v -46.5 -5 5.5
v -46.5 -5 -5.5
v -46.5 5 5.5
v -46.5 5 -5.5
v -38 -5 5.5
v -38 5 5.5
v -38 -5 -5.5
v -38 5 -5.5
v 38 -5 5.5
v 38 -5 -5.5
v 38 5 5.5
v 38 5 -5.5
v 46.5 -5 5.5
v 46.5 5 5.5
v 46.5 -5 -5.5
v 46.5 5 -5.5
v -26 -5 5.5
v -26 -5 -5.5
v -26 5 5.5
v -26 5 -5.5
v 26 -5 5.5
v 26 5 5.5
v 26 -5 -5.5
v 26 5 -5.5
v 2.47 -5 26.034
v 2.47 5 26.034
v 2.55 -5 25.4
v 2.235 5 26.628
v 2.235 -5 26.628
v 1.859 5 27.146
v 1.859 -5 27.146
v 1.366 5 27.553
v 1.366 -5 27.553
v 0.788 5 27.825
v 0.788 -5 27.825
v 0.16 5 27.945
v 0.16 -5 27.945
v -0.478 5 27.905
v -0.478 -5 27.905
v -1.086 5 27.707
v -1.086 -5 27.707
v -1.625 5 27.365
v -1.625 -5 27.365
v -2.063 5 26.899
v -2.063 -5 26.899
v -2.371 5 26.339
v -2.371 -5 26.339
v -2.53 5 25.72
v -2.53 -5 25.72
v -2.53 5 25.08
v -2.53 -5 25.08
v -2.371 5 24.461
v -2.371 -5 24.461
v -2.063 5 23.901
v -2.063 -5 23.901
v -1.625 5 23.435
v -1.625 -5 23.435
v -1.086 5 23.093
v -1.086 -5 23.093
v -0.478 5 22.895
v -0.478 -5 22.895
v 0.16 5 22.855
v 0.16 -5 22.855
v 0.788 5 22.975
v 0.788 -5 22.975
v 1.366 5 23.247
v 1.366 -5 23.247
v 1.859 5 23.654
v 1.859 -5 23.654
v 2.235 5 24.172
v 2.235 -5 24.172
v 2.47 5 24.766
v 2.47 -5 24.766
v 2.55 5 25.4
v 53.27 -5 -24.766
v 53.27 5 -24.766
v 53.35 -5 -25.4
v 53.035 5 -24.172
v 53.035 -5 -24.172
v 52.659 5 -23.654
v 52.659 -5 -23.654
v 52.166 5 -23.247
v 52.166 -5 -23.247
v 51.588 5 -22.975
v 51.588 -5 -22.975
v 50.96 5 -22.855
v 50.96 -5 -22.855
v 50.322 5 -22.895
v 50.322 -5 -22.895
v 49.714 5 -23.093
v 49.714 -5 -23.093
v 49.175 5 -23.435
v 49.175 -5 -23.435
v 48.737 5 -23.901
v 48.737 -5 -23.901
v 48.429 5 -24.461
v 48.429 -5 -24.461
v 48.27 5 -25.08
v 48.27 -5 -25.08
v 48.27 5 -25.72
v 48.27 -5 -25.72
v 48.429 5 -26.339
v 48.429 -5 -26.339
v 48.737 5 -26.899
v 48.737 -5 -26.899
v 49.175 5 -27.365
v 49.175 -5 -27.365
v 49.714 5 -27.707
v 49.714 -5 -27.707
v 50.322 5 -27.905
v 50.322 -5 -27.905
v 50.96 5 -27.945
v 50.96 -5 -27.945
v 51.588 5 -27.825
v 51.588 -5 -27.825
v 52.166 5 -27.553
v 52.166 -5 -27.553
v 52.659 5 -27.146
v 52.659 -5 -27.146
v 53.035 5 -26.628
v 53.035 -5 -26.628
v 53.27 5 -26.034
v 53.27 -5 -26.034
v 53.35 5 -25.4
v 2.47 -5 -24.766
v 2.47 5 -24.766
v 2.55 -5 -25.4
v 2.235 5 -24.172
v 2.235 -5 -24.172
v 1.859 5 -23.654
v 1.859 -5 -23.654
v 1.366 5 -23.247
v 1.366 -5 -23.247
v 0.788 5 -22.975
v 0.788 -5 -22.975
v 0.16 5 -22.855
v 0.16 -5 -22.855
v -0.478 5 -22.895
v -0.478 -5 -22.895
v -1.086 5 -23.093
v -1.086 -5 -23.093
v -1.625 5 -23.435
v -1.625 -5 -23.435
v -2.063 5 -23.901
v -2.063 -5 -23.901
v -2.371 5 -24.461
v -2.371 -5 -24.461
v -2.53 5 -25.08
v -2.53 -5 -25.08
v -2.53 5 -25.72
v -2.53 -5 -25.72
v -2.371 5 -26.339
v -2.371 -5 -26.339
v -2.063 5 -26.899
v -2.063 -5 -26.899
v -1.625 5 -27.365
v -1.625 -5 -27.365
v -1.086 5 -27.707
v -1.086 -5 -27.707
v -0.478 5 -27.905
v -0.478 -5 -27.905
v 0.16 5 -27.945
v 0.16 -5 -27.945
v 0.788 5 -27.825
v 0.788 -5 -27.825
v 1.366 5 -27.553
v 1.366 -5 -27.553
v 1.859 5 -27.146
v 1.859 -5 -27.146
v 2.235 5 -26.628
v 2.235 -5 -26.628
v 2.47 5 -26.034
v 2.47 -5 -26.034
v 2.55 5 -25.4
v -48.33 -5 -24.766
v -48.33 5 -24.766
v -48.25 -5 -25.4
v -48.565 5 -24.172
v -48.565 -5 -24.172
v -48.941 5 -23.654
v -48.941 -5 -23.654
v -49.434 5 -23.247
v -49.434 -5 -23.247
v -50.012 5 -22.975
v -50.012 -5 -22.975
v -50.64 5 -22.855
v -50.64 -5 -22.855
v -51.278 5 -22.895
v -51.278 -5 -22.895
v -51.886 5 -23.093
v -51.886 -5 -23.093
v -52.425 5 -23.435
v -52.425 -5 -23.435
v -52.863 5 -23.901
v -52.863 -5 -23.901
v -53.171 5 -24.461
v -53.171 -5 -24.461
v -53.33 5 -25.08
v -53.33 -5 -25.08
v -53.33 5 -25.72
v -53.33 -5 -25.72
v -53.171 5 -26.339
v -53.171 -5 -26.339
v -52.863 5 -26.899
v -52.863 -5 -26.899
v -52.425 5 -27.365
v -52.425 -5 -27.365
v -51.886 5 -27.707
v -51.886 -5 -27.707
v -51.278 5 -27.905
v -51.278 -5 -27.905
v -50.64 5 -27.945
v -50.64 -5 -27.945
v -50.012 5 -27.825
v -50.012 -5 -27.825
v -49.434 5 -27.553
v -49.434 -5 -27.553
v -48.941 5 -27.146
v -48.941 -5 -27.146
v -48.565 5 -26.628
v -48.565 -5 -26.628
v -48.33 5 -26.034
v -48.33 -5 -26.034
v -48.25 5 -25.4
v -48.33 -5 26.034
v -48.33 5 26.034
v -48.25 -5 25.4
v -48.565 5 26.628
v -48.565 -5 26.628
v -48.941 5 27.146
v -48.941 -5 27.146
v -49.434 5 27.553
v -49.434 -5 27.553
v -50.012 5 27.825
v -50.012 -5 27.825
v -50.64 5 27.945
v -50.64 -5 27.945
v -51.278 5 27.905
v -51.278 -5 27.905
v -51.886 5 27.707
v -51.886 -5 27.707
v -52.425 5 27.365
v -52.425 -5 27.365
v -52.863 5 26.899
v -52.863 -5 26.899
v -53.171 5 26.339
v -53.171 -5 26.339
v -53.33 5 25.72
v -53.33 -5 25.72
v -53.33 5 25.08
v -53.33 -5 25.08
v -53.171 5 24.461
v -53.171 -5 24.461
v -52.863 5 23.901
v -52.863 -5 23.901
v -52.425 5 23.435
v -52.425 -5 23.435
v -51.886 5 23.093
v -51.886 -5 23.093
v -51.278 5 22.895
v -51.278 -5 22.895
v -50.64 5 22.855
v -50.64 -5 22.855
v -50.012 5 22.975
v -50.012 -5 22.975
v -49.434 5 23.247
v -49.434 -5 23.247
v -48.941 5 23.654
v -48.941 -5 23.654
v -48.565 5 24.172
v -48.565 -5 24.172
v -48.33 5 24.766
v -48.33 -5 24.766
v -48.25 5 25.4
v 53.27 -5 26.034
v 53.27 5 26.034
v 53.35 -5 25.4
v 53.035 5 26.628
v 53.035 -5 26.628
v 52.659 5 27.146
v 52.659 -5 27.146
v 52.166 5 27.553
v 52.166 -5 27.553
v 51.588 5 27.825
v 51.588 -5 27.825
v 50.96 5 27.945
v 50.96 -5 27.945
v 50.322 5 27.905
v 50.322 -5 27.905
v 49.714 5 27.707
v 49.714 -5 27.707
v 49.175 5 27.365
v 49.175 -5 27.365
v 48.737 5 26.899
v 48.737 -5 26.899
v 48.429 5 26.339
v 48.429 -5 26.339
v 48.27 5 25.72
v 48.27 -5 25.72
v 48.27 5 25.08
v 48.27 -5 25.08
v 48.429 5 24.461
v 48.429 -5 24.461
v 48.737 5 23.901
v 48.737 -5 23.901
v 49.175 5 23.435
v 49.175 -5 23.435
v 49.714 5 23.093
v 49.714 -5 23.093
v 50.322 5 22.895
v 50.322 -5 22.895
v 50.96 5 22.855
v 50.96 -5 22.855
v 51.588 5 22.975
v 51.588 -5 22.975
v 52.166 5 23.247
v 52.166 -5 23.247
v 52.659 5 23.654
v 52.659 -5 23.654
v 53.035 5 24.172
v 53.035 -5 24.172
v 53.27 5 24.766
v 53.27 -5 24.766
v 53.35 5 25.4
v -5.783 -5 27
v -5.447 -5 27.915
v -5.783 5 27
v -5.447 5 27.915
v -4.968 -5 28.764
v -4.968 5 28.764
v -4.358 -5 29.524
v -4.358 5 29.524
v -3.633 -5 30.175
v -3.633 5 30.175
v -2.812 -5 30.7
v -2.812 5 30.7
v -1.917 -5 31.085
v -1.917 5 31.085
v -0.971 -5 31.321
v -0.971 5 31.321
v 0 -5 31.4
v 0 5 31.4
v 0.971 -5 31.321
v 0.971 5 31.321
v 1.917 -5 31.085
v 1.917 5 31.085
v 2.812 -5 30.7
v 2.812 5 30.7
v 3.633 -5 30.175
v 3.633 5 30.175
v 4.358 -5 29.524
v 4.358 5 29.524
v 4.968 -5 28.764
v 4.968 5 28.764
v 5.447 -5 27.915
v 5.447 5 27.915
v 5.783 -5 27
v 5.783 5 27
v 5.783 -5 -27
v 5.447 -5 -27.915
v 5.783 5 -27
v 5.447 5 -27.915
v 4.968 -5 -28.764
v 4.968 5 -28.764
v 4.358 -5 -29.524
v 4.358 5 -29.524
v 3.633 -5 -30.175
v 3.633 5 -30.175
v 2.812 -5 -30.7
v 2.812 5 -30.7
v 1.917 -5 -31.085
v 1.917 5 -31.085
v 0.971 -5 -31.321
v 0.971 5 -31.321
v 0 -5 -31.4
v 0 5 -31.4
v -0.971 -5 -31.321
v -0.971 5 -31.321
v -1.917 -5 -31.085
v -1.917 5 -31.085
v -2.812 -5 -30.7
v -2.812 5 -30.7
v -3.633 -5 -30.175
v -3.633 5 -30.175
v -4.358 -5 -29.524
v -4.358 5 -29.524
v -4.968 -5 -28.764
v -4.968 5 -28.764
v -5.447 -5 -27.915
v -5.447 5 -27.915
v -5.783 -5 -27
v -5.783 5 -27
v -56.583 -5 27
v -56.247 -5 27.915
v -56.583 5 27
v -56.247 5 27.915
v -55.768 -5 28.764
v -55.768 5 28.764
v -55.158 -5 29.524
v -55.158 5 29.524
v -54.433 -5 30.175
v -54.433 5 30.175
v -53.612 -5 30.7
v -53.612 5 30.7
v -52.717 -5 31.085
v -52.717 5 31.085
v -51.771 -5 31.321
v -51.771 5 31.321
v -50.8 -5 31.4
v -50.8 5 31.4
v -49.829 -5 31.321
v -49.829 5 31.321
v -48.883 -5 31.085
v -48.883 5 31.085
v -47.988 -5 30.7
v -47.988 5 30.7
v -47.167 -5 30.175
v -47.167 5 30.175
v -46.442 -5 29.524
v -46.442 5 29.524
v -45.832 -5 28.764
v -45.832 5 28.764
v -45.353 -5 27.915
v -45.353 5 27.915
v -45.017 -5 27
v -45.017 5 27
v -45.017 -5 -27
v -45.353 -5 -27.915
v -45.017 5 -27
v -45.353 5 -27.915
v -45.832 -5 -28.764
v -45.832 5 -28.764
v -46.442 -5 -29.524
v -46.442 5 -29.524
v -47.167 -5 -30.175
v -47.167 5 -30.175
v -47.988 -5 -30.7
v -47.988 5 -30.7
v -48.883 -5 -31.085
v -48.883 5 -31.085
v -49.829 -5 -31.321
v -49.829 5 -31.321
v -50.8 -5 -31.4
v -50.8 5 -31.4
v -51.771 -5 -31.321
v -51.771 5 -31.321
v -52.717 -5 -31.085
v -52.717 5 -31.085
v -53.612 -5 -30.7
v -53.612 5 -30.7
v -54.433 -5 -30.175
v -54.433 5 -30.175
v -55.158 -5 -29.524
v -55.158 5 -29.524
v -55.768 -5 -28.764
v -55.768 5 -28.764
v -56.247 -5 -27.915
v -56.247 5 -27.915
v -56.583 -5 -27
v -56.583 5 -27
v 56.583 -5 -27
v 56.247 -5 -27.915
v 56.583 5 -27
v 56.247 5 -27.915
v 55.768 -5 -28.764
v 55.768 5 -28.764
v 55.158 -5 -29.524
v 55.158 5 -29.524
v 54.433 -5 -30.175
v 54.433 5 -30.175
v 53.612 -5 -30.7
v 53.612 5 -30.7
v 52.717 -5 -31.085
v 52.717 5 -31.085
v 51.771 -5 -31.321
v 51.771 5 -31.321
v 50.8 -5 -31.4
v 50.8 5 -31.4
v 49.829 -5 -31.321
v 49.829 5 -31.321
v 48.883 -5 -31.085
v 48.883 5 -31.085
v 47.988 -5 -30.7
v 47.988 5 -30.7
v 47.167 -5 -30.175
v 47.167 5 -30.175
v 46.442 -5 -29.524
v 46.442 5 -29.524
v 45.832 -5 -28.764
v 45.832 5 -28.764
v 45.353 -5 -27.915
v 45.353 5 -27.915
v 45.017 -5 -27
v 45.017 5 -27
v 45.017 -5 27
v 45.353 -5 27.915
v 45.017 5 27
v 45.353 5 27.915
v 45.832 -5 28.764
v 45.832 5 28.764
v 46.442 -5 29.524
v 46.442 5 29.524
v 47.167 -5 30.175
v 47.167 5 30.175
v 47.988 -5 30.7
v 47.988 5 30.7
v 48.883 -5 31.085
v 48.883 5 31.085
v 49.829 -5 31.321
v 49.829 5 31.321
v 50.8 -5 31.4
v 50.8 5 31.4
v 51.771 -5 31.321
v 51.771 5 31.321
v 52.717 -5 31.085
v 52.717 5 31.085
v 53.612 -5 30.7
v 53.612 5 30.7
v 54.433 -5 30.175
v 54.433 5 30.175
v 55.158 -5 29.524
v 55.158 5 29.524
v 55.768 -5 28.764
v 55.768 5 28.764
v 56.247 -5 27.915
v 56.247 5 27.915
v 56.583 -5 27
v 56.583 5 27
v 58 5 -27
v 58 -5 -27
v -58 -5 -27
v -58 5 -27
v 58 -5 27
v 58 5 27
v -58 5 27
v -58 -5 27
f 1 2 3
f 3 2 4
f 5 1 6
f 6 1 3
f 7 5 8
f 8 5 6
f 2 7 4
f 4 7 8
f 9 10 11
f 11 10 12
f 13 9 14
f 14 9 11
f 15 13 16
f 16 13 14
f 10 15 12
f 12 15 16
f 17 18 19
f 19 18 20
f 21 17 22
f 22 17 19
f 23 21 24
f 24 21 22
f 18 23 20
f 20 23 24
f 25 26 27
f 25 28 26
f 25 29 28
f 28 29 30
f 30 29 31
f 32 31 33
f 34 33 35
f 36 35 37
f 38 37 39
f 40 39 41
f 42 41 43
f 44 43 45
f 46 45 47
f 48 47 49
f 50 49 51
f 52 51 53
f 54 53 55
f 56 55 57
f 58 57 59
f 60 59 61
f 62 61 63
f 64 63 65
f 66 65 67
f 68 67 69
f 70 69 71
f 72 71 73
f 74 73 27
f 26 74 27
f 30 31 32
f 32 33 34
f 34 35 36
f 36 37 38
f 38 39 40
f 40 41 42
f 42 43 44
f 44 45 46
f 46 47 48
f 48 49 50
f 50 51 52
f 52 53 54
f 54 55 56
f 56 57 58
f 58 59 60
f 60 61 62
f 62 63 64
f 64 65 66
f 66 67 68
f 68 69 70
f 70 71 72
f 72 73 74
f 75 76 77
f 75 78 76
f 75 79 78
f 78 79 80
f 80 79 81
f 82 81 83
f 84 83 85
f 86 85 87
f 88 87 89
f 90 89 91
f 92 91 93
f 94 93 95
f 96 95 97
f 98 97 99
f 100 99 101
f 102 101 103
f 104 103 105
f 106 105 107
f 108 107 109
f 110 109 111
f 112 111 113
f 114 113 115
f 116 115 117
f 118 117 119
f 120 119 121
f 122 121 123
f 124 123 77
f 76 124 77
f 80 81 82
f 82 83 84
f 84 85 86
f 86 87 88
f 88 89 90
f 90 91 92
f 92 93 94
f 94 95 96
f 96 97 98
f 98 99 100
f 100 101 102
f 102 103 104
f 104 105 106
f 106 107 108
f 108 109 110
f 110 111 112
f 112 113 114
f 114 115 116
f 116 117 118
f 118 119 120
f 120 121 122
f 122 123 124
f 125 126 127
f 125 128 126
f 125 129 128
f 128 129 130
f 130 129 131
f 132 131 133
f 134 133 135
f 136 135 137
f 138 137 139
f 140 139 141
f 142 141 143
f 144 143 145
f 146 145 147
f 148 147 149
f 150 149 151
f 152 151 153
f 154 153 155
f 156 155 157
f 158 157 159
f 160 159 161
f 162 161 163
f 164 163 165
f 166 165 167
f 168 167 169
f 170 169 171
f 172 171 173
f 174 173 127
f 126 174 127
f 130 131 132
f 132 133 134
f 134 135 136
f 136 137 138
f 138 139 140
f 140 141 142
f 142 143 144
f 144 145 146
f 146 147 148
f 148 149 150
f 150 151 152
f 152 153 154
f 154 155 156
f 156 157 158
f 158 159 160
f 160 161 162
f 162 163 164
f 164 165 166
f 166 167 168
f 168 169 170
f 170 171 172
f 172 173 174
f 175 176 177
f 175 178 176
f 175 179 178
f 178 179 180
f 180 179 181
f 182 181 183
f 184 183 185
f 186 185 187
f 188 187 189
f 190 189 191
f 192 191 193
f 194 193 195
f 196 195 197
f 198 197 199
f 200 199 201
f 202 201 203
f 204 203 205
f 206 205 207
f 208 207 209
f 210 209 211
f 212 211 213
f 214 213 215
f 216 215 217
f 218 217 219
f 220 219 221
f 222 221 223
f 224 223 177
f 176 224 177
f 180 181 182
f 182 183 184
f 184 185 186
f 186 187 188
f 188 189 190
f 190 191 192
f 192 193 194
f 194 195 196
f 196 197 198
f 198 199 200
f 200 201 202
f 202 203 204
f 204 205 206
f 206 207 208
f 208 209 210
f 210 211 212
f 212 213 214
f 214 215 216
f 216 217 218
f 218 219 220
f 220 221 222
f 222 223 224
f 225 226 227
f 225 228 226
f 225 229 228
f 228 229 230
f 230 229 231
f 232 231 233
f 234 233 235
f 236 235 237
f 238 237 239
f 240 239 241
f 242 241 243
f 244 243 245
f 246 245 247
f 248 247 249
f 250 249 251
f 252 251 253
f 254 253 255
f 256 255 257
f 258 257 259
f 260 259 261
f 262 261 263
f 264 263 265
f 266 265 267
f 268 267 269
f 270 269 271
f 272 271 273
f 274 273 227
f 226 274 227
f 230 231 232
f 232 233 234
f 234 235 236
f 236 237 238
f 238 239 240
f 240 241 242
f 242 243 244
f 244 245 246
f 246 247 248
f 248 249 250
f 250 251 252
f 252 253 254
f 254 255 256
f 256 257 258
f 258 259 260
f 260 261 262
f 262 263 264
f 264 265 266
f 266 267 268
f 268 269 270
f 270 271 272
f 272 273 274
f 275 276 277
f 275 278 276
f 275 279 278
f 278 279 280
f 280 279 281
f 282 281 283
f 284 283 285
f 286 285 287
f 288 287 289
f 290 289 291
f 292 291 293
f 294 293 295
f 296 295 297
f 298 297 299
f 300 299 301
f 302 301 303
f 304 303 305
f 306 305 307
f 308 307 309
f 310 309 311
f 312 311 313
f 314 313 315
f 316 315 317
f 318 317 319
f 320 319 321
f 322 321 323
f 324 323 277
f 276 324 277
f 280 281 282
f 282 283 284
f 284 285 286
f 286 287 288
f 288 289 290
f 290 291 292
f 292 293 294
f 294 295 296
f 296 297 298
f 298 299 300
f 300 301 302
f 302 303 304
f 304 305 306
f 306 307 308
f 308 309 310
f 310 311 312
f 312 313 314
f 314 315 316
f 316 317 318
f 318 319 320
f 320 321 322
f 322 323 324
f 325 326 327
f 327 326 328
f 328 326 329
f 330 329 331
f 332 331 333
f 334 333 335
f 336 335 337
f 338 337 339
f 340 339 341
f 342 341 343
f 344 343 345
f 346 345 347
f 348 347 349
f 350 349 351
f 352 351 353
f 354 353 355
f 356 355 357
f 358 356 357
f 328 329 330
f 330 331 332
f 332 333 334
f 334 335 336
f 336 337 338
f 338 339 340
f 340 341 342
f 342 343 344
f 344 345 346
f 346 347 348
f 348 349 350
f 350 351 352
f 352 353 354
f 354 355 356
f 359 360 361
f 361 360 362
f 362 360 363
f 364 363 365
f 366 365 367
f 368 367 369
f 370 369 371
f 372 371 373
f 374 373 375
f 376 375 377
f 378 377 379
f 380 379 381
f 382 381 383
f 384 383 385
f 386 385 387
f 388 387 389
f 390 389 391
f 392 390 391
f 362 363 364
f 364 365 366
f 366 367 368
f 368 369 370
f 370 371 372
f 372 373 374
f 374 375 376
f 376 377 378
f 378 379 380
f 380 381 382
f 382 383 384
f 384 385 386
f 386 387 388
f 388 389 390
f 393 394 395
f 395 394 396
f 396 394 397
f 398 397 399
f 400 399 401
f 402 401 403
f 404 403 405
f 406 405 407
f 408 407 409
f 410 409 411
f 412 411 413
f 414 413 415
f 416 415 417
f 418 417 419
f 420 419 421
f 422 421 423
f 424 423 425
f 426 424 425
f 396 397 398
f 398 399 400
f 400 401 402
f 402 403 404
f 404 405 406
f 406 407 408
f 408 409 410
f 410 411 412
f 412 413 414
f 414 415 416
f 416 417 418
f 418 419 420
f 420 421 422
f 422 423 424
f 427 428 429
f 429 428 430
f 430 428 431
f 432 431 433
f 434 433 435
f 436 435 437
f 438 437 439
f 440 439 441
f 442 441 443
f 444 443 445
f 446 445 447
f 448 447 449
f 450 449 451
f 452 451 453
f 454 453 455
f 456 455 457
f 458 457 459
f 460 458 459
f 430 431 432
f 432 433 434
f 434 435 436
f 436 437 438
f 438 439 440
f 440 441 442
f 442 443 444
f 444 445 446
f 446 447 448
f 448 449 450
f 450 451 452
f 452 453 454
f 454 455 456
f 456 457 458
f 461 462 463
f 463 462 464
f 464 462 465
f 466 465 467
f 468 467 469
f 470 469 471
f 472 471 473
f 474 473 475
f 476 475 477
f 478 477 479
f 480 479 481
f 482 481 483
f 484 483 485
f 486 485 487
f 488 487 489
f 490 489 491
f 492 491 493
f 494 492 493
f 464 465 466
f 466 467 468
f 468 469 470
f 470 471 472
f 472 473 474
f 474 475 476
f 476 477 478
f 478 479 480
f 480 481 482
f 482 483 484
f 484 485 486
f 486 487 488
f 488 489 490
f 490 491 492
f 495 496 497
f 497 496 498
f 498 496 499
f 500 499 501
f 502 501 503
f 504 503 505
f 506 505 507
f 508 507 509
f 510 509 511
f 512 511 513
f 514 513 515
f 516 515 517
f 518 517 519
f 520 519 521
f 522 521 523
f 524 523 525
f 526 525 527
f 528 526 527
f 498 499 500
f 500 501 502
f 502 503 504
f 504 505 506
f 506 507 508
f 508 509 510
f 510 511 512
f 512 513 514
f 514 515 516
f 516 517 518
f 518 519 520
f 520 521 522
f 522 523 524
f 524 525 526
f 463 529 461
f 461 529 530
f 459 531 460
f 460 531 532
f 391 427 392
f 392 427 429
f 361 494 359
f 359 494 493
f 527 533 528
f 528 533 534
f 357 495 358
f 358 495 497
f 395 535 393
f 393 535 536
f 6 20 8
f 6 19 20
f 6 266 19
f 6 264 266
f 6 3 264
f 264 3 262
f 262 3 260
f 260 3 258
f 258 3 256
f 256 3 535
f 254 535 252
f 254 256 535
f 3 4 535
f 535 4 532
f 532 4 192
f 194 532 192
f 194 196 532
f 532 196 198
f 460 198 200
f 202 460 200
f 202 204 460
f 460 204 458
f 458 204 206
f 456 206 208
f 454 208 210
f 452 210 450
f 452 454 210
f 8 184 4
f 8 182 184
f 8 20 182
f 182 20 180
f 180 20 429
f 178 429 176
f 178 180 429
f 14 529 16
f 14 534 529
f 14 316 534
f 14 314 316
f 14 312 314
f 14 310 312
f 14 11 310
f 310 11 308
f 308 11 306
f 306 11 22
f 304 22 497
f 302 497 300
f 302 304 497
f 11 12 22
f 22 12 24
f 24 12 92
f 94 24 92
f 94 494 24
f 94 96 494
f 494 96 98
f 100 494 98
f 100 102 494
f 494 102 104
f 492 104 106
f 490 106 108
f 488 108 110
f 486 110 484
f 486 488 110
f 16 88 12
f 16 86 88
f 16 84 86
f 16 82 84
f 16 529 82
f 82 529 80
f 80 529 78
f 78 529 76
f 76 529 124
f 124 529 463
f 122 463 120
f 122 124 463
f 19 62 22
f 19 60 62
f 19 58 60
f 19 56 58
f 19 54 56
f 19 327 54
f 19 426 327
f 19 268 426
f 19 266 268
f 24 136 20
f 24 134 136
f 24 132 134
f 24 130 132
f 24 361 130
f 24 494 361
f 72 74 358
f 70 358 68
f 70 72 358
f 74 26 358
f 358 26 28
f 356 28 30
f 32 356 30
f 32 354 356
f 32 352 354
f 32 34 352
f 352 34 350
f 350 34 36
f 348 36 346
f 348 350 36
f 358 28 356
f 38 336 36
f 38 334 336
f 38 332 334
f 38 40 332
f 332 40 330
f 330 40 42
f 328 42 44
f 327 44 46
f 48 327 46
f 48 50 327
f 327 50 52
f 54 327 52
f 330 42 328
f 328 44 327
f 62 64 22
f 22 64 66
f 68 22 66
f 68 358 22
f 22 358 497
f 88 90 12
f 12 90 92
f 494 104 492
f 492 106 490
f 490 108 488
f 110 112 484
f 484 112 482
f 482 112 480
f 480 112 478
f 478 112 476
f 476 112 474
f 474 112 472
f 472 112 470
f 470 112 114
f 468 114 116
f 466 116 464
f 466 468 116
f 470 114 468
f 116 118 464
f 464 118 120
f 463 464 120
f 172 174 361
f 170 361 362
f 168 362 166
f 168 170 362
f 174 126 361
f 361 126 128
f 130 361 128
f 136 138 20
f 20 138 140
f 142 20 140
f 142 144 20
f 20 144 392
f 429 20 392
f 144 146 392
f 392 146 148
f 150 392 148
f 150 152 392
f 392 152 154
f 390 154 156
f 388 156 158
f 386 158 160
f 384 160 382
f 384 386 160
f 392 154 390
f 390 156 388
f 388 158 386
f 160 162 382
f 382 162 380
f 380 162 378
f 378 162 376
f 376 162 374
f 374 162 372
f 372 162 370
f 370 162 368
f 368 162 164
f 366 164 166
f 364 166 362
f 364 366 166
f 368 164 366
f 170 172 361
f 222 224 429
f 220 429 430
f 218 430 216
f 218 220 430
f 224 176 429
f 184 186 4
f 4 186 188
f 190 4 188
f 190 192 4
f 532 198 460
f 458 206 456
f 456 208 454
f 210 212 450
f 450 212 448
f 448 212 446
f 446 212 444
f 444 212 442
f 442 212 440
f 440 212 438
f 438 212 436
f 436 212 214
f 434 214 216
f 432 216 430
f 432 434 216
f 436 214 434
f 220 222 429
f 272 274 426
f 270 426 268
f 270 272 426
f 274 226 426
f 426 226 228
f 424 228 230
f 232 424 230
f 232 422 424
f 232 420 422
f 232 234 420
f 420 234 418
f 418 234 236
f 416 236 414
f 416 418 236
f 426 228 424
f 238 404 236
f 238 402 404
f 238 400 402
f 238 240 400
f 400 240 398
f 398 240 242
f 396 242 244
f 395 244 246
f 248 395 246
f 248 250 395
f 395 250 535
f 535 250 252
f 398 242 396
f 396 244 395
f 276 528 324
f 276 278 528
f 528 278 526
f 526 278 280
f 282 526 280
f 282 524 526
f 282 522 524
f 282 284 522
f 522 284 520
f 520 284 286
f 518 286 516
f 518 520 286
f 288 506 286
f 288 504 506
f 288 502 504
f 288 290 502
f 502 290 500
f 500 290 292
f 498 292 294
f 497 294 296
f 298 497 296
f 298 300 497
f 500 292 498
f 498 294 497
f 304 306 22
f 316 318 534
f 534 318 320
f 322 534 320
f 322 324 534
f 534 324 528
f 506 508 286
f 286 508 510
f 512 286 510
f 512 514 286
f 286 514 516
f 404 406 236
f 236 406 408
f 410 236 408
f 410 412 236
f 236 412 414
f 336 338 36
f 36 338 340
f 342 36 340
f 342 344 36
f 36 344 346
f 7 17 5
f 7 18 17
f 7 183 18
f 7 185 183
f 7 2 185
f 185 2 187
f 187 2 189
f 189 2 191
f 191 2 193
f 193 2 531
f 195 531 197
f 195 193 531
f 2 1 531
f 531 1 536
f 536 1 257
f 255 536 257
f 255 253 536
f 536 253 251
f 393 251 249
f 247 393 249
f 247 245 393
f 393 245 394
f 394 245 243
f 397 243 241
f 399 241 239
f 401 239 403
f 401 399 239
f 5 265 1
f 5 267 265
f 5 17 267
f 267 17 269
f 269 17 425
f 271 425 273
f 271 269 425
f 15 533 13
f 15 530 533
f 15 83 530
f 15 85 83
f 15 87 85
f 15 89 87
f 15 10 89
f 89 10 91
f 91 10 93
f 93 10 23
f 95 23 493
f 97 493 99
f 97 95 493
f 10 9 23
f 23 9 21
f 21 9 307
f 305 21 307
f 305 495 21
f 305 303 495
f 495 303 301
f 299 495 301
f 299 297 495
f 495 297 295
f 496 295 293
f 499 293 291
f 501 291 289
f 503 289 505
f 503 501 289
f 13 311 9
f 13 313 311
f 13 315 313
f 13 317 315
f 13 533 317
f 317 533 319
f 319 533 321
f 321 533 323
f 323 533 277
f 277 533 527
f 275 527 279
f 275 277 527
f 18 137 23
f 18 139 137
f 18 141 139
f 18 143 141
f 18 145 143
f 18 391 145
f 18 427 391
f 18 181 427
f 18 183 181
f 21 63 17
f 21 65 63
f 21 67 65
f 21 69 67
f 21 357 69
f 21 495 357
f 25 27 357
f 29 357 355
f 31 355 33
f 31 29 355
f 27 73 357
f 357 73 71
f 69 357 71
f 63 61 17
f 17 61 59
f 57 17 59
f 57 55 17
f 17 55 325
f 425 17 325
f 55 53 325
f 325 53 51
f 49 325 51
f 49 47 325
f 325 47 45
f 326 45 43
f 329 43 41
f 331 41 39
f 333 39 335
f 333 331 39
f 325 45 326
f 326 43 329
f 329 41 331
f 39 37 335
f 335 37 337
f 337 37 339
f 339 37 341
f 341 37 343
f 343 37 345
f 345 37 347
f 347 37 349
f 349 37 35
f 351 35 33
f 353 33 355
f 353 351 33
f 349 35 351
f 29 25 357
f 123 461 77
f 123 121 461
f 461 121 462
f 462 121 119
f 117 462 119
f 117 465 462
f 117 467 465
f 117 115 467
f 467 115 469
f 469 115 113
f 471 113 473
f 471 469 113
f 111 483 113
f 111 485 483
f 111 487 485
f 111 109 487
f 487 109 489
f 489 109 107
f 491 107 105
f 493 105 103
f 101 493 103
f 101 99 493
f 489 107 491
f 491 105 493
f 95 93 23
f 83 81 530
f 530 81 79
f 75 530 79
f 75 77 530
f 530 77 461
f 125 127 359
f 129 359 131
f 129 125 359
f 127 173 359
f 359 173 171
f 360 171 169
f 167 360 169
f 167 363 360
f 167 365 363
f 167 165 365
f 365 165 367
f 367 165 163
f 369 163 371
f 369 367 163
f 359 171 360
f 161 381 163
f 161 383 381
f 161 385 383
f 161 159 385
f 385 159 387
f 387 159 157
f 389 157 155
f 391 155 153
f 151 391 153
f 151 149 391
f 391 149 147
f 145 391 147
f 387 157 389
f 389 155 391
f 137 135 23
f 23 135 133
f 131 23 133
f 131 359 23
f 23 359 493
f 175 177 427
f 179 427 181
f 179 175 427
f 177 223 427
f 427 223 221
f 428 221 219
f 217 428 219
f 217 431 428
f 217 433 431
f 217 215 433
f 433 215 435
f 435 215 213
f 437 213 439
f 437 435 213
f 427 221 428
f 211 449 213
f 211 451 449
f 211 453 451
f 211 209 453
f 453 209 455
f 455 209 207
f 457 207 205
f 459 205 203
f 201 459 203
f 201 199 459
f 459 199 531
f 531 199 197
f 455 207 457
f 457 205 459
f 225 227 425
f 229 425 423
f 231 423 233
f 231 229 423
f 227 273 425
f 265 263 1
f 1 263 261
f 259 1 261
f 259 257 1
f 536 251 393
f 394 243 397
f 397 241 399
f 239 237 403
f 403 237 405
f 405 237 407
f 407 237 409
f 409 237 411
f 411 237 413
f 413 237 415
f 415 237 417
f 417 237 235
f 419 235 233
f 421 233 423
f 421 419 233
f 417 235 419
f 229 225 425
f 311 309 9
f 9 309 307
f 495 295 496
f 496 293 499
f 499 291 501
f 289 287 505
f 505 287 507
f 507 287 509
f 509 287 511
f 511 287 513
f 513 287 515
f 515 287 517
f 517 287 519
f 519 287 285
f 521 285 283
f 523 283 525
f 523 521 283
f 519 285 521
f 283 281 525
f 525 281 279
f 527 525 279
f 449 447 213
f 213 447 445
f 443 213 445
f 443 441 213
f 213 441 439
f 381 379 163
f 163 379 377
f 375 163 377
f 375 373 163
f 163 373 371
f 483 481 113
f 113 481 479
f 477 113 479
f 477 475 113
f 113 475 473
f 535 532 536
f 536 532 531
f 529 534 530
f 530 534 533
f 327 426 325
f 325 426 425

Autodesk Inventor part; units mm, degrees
ref_plane "YZ Plane" through (0, 0, 0) normal (1, 0, 0) x (0, 1, 0)
ref_plane "XZ Plane" through (0, 0, 0) normal (0, 1, 0) x (-1, 0, 0)
ref_plane "XY Plane" through (0, 0, 0) normal (0, 0, 1) x (1, 0, 0)
sketch "Sketch1" plane through (0, 0, 0) normal (0, 1, 0) x (-1, 0, 0)
  line L0 (58, 27) -> (-58, 27)
  line L1 (-58, 27) -> (-58, -27)
  line L2 (-58, -27) -> (58, -27)
  line L3 (58, -27) -> (58, 27)
  line L4 (58, 27) -> (-58, -27) construction
  line L5 (-58, 27) -> (58, -27) construction
  point P0 (0, 0)
  dimension "d0" = 116
  dimension "d1" = 54
extrude "Body" add sketch "Sketch1" along normal mid plane 10
sketch "Sketch12" plane through (0, 5, 0) normal (0, 1, 0) x (1, 0, 0)
  line L0 (58, 27) -> (-58, 27) projected
  circle A0 centre (-50.8, 25.4) radius 6
  line L1 (-58, -27) -> (-58, 27) projected
  line L2 (-58, 0) -> (58, 0)
  line L3 (58, 27) -> (58, -27) projected
  line L4 (-58, -27) -> (58, -27) projected
  line L5 (0, -27) -> (0, 27)
  circle A1 centre (50.8, 25.4) radius 6
  circle A2 centre (-50.8, -25.4) radius 6
  circle A3 centre (50.8, -25.4) radius 6
  line L6 (-50.8, 25.4) -> (50.8, 25.4)
  line L7 (-50.8, -25.4) -> (50.8, -25.4)
  circle A4 centre (0, 25.4) radius 6
  circle A5 centre (0, -25.4) radius 6
  point P0 (0, 0)
  dimension "d40" = 25.4
  dimension "d49" = 50.8
  dimension "d57" = 12
extrude "Screw clamp boss" add sketch "Sketch12" against normal up to surface (10 mm away) contours A1 L0 | L0 A1 | A4 L6 L5 L0 | L0 A4 | A5 L7 L5 | L5 L7 A5 | A4 L6 L5 | L5 L6 A4 | A3 L4 | L4 A3 | L5 L6 A4 L0 | L7 A5 L4 L5 | L5 L4 A5 L7 | A0 L0 | L0 A0 | A2 L4 | L4 A2 | L4 A5
sketch "Sketch15" plane through (0, 5, 0) normal (0, 1, 0) x (1, 0, 0)
  circle A0 centre (0, 25.4) radius 2.55
  arc A1 (5.7827, 27) -> (-5.7827, 27) centre (0, 25.4) ccw projected
  circle A2 centre (-50.8, 25.4) radius 2.55
  arc A3 (-45.0173, 27) -> (-56.5827, 27) centre (-50.8, 25.4) ccw projected
  line L0 (55.75, -18.75) -> (-55.75, -18.75) projected
  line L1 (0, -18.75) -> (0, 18.75)
  line L2 (-55.75, 18.75) -> (55.75, 18.75) projected
  line L3 (-58, 27) -> (-58, -27) projected
  line L4 (-58, 0) -> (58, 0)
  line L5 (58, -27) -> (58, 27) projected
  circle A4 centre (50.8, 25.4) radius 2.55
  circle A5 centre (0, -25.4) radius 2.55
  circle A6 centre (-50.8, -25.4) radius 2.55
  circle A7 centre (50.8, -25.4) radius 2.55
  point P0 (0, 0)
  dimension "d60" = 5.1
extrude "Screw Clamp Hole" cut sketch "Sketch15" against normal through all
sketch "Sketch17" plane through (0, 5, 0) normal (0, 1, 0) x (1, 0, 0)
  line L0 (-46.5, -5.5) -> (46.5, -5.5)
  line L1 (46.5, -5.5) -> (46.5, 5.5)
  line L2 (46.5, 5.5) -> (-46.5, 5.5)
  line L3 (-46.5, 5.5) -> (-46.5, -5.5)
  line L4 (-46.5, -5.5) -> (46.5, 5.5) construction
  line L5 (46.5, -5.5) -> (-46.5, 5.5) construction
  line L6 (-38, -5.5) -> (-26, -5.5)
  line L7 (-26, -5.5) -> (-26, 5.5)
  line L8 (-26, 5.5) -> (-38, 5.5)
  line L9 (-38, 5.5) -> (-38, -5.5)
  arc A0 (-5.7827, -27) -> (5.7827, -27) centre (0, -25.4) ccw projected
  circle A1 centre (0, 25.4) radius 2.55 projected
  line L10 (0, -25.4) -> (0, 25.4)
  line L11 (26, -5.5) -> (38, -5.5)
  line L12 (38, -5.5) -> (38, 5.5)
  line L13 (38, 5.5) -> (26, 5.5)
  line L14 (26, 5.5) -> (26, -5.5)
  point P0 (0, 0)
  dimension "d70" = 93
  dimension "d71" = 11
  dimension "d72" = 38
  dimension "d73" = 12
extrude "Main Window" cut sketch "Sketch17" against normal through all contours L7 L2 L10 L0 | L10 L2 L14 L0
sketch "Sketch18" plane through (0, 5, 0) normal (0, 1, 0) x (1, 0, 0)
  line L0 (-46.5, -5.5) -> (46.5, -5.5)
  line L1 (46.5, -5.5) -> (46.5, 5.5)
  line L2 (46.5, 5.5) -> (-46.5, 5.5)
  line L3 (-46.5, 5.5) -> (-46.5, -5.5)
  line L4 (-46.5, -5.5) -> (46.5, 5.5) construction
  line L5 (46.5, -5.5) -> (-46.5, 5.5) construction
  line L6 (-38, -5.5) -> (-26, -5.5)
  line L7 (-26, -5.5) -> (-26, 5.5)
  line L8 (-26, 5.5) -> (-38, 5.5)
  line L9 (-38, 5.5) -> (-38, -5.5)
  arc A0 (-5.7827, -27) -> (5.7827, -27) centre (0, -25.4) ccw
  circle A1 centre (0, 25.4) radius 2.55
  line L10 (0, -25.4) -> (0, 25.4)
  line L11 (26, -5.5) -> (38, -5.5)
  line L12 (38, -5.5) -> (38, 5.5)
  line L13 (38, 5.5) -> (26, 5.5)
  line L14 (26, 5.5) -> (26, -5.5)
  point P0 (0, 0)
  point P1 (0, 0)
  dimension "d76" = 93
  dimension "d77" = 11
  dimension "d78" = 38
  dimension "d79" = 12
extrude "Inelt Outlet Access" cut sketch "Sketch18" against normal through all contours L3 L2 L9 L0 | L12 L2 L1 L0
properties part number "Top Clamp 6_6"
